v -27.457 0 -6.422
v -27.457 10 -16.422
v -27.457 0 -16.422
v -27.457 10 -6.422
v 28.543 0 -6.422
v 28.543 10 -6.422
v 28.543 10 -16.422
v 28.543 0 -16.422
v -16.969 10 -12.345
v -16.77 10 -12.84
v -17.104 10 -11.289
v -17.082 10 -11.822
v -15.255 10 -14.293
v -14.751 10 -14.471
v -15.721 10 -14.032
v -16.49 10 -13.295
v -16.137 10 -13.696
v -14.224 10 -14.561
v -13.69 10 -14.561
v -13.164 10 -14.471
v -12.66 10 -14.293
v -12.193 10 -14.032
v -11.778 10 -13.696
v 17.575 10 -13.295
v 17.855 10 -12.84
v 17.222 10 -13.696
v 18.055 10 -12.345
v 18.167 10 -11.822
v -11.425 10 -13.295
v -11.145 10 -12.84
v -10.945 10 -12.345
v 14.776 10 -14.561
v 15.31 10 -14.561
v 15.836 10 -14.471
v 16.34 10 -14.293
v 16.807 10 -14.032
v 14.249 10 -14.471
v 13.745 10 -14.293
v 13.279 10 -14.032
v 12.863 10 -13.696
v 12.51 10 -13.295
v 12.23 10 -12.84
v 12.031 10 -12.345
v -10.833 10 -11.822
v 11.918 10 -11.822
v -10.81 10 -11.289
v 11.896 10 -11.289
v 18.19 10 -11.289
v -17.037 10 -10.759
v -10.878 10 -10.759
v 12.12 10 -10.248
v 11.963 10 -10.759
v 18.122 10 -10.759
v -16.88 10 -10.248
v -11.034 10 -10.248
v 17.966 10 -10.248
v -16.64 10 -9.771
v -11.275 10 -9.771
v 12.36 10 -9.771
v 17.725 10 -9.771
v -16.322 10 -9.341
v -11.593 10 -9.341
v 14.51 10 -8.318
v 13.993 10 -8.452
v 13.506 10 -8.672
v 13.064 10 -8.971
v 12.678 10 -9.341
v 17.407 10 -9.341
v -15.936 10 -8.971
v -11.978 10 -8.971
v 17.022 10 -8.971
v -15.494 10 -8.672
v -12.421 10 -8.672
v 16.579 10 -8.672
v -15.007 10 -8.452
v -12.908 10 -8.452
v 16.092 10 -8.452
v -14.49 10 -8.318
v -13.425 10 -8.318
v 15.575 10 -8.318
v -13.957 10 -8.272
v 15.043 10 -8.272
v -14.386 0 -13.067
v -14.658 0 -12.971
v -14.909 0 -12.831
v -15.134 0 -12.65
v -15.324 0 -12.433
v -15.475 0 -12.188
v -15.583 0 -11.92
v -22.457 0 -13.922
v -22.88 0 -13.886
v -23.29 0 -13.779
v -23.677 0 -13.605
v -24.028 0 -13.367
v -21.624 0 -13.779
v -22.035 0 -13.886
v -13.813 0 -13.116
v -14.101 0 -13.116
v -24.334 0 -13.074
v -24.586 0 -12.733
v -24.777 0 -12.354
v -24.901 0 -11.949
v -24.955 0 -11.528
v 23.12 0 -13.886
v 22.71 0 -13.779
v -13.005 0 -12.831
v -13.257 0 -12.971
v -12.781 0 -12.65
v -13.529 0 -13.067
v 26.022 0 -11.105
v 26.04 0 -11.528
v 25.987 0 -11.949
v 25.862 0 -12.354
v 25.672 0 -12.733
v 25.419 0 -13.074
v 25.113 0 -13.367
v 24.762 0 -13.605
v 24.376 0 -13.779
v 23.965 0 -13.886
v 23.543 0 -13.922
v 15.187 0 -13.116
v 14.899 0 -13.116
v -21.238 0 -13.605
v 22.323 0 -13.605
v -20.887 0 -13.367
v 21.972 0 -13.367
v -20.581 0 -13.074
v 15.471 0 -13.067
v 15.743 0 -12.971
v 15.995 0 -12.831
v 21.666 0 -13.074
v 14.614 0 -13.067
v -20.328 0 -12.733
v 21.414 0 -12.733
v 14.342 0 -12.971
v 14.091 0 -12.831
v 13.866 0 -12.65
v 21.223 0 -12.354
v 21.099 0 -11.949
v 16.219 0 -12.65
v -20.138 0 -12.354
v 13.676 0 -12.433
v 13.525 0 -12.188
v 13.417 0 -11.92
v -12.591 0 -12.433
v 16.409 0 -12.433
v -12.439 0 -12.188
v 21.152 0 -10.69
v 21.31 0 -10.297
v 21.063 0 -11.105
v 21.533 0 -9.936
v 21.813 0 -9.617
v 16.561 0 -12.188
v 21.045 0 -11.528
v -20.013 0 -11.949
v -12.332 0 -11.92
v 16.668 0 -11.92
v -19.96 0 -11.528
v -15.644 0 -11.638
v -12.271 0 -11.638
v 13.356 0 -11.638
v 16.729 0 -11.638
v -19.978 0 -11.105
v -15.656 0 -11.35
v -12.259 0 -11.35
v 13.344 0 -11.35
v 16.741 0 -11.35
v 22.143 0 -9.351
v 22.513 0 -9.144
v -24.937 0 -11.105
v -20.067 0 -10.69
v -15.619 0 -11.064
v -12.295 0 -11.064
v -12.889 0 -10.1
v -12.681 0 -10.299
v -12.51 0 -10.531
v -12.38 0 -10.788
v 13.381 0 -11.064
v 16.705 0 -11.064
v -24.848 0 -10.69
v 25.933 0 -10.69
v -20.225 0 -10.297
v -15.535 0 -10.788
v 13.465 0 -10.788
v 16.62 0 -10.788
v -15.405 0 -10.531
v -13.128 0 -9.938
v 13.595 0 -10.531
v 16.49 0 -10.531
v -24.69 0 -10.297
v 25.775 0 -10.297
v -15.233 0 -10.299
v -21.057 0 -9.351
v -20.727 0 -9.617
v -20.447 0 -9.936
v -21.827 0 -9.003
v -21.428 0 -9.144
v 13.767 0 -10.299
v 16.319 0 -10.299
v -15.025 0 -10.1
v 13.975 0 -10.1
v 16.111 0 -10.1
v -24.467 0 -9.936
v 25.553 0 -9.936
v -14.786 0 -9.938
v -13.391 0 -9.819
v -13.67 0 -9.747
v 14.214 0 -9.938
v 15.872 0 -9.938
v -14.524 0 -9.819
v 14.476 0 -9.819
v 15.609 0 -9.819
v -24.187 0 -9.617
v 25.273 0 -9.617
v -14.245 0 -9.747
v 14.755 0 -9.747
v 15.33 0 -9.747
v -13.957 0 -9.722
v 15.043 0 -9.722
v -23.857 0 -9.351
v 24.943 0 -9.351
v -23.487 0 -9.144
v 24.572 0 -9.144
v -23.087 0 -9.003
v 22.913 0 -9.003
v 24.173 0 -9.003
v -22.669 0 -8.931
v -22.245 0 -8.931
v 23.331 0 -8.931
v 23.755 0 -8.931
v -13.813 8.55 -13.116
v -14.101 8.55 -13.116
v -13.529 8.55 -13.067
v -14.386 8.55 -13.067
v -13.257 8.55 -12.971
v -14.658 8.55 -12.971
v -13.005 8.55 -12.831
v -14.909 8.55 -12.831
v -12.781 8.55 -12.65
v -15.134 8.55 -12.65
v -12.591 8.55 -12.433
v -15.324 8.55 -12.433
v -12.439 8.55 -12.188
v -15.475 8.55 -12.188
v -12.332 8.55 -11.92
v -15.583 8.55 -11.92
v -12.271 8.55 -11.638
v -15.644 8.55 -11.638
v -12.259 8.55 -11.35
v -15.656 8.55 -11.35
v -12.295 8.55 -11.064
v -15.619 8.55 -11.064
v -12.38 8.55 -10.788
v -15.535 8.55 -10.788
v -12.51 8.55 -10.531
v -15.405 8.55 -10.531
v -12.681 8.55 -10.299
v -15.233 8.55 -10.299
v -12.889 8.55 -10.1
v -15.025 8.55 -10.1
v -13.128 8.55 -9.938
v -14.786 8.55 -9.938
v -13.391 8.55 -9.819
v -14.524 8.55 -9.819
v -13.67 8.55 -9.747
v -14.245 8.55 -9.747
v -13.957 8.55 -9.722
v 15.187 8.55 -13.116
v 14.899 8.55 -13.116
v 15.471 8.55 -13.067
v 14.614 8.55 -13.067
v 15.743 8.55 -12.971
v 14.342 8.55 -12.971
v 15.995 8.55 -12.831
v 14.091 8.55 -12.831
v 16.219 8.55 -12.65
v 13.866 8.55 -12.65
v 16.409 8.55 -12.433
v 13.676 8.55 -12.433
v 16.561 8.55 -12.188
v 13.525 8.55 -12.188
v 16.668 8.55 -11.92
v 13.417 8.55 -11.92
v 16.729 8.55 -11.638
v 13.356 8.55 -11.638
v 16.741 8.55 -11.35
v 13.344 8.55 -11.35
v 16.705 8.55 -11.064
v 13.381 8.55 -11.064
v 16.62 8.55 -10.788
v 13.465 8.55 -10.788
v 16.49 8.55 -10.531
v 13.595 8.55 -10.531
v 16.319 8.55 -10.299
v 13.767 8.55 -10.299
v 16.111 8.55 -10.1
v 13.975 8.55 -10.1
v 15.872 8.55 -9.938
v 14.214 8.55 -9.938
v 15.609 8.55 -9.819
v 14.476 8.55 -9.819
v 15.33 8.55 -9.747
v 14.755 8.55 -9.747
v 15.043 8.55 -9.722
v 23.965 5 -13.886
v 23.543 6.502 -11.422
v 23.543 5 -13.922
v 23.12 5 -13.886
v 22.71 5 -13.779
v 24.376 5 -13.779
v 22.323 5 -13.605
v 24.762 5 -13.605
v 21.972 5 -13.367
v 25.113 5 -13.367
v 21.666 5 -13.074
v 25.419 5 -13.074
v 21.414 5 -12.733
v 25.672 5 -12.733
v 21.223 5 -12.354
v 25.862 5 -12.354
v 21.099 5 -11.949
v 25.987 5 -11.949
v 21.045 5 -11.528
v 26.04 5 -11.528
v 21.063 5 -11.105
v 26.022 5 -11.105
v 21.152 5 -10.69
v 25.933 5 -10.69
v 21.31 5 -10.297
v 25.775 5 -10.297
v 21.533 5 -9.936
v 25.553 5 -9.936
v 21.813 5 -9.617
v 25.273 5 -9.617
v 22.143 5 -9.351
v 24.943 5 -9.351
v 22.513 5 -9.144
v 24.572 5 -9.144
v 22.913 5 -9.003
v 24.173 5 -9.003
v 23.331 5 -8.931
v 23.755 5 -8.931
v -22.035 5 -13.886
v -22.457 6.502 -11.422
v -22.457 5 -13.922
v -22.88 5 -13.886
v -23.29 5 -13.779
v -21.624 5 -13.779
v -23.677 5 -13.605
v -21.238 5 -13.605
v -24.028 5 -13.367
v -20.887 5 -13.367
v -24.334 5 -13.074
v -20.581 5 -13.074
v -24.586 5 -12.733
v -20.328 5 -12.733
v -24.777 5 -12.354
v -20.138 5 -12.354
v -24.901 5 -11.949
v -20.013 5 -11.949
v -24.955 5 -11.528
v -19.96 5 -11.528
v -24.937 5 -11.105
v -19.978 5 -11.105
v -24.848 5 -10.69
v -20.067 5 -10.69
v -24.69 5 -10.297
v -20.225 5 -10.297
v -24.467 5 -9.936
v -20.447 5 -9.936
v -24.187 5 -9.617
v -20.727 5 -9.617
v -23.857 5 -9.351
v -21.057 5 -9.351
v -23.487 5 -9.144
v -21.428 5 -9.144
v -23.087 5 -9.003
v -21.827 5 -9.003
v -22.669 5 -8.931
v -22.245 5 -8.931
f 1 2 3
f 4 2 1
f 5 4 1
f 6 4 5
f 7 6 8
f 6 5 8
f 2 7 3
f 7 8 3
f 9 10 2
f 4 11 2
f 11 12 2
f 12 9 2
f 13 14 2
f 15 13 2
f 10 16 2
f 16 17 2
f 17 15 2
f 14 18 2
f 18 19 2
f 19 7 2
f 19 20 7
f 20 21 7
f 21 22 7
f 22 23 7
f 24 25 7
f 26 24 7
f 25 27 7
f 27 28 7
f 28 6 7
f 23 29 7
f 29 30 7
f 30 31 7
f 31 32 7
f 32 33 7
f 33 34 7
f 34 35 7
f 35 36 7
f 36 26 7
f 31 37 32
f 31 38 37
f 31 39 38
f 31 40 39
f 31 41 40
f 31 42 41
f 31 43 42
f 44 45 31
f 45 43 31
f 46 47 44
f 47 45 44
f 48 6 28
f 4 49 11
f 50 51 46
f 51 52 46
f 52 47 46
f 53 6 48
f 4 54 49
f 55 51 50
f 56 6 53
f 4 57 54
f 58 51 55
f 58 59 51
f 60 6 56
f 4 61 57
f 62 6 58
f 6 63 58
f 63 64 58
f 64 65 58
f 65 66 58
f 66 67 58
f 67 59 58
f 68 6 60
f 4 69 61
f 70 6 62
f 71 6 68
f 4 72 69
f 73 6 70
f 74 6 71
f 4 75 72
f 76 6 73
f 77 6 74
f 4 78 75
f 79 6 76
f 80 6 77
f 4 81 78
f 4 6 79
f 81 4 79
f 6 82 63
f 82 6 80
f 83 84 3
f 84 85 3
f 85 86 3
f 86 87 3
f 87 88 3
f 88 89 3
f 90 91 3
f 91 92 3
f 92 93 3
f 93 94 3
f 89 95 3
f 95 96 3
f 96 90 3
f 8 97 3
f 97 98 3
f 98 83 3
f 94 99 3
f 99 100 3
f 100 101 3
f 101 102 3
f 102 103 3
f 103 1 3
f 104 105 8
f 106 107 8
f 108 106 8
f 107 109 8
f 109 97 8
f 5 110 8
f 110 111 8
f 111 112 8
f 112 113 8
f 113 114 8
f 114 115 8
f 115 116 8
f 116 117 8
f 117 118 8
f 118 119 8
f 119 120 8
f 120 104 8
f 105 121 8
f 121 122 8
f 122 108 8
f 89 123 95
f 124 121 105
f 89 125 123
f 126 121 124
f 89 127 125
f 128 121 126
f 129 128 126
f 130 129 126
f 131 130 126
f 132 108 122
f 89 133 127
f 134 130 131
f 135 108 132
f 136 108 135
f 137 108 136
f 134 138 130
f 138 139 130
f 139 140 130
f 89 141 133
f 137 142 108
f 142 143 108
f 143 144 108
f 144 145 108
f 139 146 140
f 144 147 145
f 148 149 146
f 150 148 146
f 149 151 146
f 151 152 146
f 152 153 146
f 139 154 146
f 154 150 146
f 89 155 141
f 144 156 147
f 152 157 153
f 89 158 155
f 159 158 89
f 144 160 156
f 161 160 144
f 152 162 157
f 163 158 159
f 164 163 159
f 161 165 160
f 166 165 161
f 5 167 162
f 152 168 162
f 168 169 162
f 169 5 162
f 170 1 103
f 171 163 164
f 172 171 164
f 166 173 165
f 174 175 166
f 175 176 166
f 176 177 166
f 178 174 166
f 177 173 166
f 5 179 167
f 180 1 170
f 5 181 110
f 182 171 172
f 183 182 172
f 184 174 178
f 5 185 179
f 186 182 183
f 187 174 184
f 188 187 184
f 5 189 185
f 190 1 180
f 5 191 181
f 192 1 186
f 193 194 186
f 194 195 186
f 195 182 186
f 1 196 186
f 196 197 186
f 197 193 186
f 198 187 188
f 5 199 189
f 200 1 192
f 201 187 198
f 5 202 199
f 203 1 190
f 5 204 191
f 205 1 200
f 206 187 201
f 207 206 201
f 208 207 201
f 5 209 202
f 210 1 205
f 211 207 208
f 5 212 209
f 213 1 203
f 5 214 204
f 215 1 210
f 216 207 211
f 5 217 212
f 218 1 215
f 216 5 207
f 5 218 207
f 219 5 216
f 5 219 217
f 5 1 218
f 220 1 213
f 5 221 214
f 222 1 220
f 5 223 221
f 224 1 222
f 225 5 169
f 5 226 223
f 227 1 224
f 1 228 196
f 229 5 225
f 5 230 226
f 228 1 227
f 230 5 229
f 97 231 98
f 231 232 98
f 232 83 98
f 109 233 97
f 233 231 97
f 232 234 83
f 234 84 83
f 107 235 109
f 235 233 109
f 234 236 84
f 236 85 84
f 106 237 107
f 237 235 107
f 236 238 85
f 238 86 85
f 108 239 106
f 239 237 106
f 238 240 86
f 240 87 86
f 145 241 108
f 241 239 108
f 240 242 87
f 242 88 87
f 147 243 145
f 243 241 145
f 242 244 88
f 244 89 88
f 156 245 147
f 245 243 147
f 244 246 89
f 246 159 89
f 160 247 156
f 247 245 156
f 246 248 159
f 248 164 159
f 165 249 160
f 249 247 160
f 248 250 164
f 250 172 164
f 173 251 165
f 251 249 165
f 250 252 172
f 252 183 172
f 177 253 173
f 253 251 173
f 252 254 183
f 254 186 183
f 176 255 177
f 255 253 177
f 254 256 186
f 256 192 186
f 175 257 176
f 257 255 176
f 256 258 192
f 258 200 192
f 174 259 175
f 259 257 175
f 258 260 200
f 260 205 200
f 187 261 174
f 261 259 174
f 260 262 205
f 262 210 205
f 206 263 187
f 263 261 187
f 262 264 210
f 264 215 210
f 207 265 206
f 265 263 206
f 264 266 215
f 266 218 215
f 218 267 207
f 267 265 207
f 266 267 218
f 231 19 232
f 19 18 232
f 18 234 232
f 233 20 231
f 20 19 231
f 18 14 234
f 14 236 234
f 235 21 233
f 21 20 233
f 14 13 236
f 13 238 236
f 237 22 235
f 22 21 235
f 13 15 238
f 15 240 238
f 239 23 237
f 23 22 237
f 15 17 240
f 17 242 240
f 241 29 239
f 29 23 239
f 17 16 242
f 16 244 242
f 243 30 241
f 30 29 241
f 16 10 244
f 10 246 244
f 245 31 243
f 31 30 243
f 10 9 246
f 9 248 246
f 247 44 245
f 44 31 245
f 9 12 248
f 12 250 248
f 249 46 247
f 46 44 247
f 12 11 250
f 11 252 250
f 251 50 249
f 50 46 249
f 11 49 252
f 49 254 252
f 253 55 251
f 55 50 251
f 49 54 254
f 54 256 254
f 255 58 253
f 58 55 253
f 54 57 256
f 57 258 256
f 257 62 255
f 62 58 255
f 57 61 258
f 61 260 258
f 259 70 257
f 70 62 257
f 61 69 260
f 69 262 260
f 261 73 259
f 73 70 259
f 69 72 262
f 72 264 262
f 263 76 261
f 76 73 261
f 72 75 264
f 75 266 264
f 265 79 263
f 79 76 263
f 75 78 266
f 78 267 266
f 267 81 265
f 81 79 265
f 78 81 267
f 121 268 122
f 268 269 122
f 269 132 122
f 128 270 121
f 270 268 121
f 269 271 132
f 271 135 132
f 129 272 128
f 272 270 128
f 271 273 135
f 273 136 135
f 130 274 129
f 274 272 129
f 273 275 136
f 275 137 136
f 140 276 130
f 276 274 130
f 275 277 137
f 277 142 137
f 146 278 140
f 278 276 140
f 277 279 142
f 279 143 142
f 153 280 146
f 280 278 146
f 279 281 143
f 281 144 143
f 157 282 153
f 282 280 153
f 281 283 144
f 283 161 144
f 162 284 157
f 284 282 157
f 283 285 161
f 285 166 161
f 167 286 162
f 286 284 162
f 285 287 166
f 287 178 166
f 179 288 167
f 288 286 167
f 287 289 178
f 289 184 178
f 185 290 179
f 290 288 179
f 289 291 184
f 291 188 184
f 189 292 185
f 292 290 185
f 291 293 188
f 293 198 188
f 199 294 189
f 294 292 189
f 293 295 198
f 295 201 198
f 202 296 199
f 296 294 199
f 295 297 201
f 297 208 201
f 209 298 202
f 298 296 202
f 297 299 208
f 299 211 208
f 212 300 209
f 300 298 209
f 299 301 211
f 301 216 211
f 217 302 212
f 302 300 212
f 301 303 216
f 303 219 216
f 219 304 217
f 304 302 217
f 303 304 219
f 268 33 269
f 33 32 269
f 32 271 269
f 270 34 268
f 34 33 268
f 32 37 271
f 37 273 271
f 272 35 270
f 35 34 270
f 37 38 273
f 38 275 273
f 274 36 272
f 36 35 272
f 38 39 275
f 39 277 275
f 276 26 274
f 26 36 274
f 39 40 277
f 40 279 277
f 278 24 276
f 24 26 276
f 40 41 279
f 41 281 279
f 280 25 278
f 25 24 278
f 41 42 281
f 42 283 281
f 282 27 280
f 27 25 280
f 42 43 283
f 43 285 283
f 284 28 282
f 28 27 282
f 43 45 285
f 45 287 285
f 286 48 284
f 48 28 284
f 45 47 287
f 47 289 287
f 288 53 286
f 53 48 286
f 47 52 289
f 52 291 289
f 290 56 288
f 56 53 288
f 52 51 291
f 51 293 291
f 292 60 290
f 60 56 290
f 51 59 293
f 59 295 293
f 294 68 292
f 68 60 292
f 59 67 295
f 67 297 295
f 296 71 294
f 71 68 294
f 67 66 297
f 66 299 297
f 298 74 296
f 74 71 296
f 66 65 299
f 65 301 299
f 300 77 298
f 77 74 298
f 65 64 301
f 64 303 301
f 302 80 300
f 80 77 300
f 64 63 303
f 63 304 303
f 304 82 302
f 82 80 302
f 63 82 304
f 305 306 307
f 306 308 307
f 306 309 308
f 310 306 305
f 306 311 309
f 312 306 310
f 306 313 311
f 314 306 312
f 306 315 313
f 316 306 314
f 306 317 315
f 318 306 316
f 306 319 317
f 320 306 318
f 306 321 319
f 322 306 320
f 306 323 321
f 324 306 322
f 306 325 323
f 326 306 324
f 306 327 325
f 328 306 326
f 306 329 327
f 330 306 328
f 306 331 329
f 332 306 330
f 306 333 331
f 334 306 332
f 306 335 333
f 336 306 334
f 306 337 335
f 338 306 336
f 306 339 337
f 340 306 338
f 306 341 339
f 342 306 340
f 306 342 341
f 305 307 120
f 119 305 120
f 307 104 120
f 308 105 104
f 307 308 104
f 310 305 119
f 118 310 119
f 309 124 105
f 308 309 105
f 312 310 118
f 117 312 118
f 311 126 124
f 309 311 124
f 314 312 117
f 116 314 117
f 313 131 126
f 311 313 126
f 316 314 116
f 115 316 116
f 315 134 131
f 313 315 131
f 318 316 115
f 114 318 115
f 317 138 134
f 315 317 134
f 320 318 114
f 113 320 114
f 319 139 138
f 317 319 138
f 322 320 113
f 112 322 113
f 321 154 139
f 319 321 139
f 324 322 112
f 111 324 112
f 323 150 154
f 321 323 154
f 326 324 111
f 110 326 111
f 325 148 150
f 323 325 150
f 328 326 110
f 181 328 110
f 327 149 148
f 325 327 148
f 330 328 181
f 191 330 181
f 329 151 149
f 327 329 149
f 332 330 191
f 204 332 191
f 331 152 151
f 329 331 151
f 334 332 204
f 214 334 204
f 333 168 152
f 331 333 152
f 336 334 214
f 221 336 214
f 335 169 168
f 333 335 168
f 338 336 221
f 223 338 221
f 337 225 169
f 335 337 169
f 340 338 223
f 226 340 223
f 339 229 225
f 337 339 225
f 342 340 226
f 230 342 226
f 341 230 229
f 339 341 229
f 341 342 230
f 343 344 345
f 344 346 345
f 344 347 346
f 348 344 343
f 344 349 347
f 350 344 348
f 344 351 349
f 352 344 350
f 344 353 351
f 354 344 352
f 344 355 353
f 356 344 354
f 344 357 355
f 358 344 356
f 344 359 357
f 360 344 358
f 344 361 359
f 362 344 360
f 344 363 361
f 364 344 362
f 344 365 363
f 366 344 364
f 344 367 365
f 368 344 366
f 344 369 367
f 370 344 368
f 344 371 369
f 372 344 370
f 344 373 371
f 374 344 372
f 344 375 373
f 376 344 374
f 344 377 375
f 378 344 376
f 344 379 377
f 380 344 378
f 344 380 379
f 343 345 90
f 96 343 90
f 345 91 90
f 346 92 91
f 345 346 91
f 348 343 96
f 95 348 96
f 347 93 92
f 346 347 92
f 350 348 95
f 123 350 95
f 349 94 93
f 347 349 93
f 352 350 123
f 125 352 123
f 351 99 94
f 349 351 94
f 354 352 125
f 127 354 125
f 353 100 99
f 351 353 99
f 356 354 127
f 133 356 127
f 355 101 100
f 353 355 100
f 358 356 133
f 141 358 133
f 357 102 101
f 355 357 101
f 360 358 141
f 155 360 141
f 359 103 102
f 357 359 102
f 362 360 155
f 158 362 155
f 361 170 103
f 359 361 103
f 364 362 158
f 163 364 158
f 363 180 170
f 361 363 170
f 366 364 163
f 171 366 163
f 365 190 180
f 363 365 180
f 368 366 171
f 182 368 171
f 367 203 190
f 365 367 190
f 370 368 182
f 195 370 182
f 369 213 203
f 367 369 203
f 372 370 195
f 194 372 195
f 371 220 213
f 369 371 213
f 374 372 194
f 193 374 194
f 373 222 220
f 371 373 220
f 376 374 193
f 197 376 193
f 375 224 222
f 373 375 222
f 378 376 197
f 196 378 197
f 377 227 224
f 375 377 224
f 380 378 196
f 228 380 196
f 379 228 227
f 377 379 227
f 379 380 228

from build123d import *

# Parameters (mm, degrees)
SKETCH1_W                                       = 56
SKETCH1_H                                       = 10
BOSS_EXTRUDE1_DEPTH                             = 10
CSK_FOR_M3_FLAT_HEAD_MACHINE_SCREW1_D           = 3.4
CSK_FOR_M3_FLAT_HEAD_MACHINE_SCREW1_CSINK_D     = 6.3
CSK_FOR_M3_FLAT_HEAD_MACHINE_SCREW1_CSINK_ANGLE = 90
F_5_0MM_DOWEL_HOLE1_D                           = 5
F_5_0MM_DOWEL_HOLE1_DEPTH                       = 5
F_5_0MM_DOWEL_HOLE1_TIP                         = 1.502151548


with BuildPart() as part:
    # Sketch1 → Boss-Extrude1 (new body)
    with BuildSketch(Plane(origin=(0, 0, 0), x_dir=(1, 0, 0), z_dir=(0, 1, 0))):
        with Locations((0.542682927, 11.422256098)):
            Rectangle(SKETCH1_W, SKETCH1_H)
    extrude(amount=BOSS_EXTRUDE1_DEPTH)

    # CSK for M3 Flat Head Machine Screw1 (through all)
    with Locations(Plane(origin=(0, 10, 0), x_dir=(1, 0, 0), z_dir=(0, 1, 0))):
        with Locations((15.042682927, 11.422256098), (-13.957317073, 11.422256098)):
            CounterSinkHole(CSK_FOR_M3_FLAT_HEAD_MACHINE_SCREW1_D / 2, CSK_FOR_M3_FLAT_HEAD_MACHINE_SCREW1_CSINK_D / 2, counter_sink_angle=CSK_FOR_M3_FLAT_HEAD_MACHINE_SCREW1_CSINK_ANGLE)

    # Ø5.0mm Dowel Hole1
    with Locations(Plane(origin=(0, 0, 0), x_dir=(-1, 0, 0), z_dir=(0, -1, 0))):
        with Locations((22.457317073, 11.422256098), (-23.542682927, 11.422256098)):
            Hole(F_5_0MM_DOWEL_HOLE1_D / 2, depth=F_5_0MM_DOWEL_HOLE1_DEPTH)
            with Locations((0, 0, -(F_5_0MM_DOWEL_HOLE1_DEPTH + F_5_0MM_DOWEL_HOLE1_TIP / 2))):  # 118° drill point
                Cone(0, F_5_0MM_DOWEL_HOLE1_D / 2, F_5_0MM_DOWEL_HOLE1_TIP, mode=Mode.SUBTRACT)


solid = part.part
